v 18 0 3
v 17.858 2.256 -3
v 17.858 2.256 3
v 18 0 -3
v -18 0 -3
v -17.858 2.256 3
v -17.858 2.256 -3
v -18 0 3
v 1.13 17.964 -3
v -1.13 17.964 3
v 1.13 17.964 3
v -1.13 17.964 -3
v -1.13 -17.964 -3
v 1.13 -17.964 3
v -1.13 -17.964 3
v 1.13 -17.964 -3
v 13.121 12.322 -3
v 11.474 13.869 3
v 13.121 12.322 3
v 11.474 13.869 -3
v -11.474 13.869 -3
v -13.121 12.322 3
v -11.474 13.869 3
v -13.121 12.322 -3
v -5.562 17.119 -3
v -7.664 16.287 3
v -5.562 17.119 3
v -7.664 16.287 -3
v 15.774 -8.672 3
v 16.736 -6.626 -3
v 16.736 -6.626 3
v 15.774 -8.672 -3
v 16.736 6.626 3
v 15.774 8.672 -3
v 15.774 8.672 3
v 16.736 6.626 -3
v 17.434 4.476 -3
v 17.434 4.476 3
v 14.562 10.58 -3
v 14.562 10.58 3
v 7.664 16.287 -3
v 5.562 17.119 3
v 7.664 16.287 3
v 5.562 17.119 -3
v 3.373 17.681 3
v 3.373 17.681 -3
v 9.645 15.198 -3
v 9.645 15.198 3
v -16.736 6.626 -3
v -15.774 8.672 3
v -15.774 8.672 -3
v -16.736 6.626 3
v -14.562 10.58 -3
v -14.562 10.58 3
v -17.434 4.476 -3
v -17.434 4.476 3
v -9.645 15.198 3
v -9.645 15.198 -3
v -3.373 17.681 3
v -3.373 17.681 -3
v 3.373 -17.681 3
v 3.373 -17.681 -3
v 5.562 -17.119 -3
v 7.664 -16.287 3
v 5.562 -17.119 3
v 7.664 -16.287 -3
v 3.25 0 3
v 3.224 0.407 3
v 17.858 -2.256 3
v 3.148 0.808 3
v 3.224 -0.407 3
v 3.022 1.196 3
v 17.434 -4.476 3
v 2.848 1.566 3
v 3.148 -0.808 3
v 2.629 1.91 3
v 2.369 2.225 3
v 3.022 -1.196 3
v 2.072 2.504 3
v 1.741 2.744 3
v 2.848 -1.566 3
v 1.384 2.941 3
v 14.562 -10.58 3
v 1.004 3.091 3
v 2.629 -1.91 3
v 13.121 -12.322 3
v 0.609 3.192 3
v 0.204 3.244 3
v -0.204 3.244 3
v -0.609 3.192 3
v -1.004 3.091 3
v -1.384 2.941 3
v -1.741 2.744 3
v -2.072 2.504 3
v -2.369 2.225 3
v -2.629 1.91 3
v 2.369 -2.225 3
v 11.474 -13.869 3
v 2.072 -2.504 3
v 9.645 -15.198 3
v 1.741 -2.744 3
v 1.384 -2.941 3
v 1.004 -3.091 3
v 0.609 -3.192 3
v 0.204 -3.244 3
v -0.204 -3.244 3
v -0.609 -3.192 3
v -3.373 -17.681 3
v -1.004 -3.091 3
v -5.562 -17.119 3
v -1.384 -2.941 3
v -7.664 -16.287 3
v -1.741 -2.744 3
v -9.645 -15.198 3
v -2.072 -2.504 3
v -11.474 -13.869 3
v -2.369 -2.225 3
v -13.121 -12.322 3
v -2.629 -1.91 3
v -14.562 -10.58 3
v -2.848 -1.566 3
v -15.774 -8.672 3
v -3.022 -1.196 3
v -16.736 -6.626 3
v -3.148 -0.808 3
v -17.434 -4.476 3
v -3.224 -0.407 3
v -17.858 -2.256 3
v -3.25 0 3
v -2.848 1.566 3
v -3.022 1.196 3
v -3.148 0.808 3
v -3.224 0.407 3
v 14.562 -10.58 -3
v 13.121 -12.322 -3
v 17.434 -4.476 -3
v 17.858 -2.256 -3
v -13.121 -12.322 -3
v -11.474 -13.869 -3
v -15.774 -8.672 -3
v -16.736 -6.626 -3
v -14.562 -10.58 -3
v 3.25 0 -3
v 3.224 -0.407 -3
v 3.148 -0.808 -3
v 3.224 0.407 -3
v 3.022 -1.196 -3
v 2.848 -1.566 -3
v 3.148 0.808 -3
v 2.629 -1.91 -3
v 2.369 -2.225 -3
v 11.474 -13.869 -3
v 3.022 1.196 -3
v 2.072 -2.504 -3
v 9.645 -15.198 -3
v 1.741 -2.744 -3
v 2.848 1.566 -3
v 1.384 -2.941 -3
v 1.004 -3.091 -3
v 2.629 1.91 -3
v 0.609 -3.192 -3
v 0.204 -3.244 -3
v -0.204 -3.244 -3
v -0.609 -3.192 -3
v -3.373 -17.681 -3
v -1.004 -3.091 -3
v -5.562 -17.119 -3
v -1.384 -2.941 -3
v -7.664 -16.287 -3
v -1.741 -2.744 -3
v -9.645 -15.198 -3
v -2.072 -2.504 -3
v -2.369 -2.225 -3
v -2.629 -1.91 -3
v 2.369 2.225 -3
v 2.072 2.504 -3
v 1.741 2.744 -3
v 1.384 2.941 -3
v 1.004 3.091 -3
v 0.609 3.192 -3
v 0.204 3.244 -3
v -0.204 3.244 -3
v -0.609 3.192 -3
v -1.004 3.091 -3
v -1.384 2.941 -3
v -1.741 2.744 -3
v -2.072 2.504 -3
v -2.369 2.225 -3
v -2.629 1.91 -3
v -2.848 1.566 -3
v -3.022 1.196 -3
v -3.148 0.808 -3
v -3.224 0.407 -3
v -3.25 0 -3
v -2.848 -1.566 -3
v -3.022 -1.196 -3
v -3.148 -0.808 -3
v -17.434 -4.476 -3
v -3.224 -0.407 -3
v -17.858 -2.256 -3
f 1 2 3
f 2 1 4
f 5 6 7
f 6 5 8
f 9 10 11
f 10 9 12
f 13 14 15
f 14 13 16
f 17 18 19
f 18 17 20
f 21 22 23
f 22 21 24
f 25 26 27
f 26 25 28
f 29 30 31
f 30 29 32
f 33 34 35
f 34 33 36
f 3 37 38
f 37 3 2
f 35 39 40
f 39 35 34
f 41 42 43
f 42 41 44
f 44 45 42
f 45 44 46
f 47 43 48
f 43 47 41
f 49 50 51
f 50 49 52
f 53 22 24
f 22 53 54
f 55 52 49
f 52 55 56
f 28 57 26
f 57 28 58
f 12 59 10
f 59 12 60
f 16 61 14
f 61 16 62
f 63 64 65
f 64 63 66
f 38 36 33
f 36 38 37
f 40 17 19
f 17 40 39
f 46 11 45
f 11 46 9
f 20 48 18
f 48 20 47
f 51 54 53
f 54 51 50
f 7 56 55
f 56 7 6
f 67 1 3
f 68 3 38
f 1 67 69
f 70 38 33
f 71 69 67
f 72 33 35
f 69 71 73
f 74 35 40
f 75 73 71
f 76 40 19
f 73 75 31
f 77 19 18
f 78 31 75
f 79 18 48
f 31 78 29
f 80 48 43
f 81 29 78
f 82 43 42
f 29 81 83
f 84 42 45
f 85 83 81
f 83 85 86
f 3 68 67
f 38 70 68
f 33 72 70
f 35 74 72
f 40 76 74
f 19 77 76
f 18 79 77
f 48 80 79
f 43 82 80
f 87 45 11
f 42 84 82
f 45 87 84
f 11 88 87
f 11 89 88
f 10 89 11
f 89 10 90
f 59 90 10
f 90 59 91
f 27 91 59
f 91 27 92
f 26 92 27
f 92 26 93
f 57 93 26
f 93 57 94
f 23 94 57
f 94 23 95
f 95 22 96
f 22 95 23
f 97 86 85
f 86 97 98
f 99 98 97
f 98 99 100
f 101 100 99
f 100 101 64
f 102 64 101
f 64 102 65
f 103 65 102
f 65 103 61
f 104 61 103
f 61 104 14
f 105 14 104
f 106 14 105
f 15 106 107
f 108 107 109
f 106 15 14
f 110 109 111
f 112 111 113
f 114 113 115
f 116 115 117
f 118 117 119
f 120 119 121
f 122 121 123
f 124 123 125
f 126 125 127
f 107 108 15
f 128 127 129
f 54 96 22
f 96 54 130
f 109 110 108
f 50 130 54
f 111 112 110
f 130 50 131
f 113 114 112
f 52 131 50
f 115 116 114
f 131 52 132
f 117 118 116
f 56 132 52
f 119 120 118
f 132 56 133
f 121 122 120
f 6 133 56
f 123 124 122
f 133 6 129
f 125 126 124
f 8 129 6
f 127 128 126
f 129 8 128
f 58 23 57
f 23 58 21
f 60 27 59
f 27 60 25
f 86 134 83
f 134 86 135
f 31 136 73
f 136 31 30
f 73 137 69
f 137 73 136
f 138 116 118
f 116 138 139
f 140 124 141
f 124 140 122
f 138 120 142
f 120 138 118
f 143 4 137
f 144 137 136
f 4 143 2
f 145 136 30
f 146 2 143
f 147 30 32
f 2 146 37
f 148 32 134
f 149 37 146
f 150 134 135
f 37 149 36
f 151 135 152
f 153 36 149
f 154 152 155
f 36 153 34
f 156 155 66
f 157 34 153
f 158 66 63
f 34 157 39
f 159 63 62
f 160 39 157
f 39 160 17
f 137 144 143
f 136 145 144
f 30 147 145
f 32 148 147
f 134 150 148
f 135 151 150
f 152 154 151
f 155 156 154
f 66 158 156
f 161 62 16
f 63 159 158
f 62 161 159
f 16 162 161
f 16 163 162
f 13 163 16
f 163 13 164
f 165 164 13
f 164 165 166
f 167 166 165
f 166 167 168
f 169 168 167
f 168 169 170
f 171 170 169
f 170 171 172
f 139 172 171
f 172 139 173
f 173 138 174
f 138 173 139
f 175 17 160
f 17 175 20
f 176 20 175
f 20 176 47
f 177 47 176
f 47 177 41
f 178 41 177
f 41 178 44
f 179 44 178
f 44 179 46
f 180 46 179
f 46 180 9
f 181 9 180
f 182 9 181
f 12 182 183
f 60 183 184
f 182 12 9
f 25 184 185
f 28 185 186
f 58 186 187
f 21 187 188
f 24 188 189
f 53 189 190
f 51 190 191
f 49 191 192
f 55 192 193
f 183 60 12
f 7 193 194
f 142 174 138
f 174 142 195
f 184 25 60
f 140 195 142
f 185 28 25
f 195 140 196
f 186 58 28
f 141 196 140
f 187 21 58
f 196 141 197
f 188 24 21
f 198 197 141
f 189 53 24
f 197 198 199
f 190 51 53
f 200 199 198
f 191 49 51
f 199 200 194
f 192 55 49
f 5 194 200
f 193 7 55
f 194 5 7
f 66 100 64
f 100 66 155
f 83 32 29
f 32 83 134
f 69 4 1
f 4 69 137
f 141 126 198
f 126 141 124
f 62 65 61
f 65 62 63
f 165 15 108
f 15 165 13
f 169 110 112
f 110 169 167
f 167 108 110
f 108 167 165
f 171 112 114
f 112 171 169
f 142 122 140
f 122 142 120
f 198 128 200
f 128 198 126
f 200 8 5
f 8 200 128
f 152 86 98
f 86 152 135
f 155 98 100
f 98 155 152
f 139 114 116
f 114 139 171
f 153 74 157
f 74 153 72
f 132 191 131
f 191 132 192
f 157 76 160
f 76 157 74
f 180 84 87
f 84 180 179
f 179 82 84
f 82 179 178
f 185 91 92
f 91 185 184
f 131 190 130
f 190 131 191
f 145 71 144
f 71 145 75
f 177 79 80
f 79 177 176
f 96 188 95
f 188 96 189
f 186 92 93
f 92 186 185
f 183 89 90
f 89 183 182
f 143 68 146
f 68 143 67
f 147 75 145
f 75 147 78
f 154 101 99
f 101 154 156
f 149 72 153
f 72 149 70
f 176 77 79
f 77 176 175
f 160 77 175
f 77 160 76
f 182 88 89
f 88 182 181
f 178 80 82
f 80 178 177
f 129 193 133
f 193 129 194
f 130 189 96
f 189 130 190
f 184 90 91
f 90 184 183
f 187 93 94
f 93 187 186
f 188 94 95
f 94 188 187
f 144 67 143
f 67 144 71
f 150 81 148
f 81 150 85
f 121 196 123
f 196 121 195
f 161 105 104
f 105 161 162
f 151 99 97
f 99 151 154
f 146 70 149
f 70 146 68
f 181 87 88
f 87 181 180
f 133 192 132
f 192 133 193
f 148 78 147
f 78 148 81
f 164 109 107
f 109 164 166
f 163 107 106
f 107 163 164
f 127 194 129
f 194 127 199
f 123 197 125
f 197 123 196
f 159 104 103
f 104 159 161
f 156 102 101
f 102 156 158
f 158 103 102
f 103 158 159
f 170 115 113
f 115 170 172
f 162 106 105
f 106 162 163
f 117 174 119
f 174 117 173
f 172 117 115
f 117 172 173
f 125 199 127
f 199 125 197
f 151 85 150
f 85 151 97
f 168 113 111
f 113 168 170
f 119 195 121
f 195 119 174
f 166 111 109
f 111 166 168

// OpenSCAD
$fn = 50;


difference() {
	union() {
		translate(v = [0, 0, -3.0000000000]) {
			cylinder(h = 6, r = 18.0000000000);
		}
	}
	union() {
		translate(v = [0, 0, -100.0000000000]) {
			cylinder(h = 200, r = 3.2500000000);
		}
	}
}
